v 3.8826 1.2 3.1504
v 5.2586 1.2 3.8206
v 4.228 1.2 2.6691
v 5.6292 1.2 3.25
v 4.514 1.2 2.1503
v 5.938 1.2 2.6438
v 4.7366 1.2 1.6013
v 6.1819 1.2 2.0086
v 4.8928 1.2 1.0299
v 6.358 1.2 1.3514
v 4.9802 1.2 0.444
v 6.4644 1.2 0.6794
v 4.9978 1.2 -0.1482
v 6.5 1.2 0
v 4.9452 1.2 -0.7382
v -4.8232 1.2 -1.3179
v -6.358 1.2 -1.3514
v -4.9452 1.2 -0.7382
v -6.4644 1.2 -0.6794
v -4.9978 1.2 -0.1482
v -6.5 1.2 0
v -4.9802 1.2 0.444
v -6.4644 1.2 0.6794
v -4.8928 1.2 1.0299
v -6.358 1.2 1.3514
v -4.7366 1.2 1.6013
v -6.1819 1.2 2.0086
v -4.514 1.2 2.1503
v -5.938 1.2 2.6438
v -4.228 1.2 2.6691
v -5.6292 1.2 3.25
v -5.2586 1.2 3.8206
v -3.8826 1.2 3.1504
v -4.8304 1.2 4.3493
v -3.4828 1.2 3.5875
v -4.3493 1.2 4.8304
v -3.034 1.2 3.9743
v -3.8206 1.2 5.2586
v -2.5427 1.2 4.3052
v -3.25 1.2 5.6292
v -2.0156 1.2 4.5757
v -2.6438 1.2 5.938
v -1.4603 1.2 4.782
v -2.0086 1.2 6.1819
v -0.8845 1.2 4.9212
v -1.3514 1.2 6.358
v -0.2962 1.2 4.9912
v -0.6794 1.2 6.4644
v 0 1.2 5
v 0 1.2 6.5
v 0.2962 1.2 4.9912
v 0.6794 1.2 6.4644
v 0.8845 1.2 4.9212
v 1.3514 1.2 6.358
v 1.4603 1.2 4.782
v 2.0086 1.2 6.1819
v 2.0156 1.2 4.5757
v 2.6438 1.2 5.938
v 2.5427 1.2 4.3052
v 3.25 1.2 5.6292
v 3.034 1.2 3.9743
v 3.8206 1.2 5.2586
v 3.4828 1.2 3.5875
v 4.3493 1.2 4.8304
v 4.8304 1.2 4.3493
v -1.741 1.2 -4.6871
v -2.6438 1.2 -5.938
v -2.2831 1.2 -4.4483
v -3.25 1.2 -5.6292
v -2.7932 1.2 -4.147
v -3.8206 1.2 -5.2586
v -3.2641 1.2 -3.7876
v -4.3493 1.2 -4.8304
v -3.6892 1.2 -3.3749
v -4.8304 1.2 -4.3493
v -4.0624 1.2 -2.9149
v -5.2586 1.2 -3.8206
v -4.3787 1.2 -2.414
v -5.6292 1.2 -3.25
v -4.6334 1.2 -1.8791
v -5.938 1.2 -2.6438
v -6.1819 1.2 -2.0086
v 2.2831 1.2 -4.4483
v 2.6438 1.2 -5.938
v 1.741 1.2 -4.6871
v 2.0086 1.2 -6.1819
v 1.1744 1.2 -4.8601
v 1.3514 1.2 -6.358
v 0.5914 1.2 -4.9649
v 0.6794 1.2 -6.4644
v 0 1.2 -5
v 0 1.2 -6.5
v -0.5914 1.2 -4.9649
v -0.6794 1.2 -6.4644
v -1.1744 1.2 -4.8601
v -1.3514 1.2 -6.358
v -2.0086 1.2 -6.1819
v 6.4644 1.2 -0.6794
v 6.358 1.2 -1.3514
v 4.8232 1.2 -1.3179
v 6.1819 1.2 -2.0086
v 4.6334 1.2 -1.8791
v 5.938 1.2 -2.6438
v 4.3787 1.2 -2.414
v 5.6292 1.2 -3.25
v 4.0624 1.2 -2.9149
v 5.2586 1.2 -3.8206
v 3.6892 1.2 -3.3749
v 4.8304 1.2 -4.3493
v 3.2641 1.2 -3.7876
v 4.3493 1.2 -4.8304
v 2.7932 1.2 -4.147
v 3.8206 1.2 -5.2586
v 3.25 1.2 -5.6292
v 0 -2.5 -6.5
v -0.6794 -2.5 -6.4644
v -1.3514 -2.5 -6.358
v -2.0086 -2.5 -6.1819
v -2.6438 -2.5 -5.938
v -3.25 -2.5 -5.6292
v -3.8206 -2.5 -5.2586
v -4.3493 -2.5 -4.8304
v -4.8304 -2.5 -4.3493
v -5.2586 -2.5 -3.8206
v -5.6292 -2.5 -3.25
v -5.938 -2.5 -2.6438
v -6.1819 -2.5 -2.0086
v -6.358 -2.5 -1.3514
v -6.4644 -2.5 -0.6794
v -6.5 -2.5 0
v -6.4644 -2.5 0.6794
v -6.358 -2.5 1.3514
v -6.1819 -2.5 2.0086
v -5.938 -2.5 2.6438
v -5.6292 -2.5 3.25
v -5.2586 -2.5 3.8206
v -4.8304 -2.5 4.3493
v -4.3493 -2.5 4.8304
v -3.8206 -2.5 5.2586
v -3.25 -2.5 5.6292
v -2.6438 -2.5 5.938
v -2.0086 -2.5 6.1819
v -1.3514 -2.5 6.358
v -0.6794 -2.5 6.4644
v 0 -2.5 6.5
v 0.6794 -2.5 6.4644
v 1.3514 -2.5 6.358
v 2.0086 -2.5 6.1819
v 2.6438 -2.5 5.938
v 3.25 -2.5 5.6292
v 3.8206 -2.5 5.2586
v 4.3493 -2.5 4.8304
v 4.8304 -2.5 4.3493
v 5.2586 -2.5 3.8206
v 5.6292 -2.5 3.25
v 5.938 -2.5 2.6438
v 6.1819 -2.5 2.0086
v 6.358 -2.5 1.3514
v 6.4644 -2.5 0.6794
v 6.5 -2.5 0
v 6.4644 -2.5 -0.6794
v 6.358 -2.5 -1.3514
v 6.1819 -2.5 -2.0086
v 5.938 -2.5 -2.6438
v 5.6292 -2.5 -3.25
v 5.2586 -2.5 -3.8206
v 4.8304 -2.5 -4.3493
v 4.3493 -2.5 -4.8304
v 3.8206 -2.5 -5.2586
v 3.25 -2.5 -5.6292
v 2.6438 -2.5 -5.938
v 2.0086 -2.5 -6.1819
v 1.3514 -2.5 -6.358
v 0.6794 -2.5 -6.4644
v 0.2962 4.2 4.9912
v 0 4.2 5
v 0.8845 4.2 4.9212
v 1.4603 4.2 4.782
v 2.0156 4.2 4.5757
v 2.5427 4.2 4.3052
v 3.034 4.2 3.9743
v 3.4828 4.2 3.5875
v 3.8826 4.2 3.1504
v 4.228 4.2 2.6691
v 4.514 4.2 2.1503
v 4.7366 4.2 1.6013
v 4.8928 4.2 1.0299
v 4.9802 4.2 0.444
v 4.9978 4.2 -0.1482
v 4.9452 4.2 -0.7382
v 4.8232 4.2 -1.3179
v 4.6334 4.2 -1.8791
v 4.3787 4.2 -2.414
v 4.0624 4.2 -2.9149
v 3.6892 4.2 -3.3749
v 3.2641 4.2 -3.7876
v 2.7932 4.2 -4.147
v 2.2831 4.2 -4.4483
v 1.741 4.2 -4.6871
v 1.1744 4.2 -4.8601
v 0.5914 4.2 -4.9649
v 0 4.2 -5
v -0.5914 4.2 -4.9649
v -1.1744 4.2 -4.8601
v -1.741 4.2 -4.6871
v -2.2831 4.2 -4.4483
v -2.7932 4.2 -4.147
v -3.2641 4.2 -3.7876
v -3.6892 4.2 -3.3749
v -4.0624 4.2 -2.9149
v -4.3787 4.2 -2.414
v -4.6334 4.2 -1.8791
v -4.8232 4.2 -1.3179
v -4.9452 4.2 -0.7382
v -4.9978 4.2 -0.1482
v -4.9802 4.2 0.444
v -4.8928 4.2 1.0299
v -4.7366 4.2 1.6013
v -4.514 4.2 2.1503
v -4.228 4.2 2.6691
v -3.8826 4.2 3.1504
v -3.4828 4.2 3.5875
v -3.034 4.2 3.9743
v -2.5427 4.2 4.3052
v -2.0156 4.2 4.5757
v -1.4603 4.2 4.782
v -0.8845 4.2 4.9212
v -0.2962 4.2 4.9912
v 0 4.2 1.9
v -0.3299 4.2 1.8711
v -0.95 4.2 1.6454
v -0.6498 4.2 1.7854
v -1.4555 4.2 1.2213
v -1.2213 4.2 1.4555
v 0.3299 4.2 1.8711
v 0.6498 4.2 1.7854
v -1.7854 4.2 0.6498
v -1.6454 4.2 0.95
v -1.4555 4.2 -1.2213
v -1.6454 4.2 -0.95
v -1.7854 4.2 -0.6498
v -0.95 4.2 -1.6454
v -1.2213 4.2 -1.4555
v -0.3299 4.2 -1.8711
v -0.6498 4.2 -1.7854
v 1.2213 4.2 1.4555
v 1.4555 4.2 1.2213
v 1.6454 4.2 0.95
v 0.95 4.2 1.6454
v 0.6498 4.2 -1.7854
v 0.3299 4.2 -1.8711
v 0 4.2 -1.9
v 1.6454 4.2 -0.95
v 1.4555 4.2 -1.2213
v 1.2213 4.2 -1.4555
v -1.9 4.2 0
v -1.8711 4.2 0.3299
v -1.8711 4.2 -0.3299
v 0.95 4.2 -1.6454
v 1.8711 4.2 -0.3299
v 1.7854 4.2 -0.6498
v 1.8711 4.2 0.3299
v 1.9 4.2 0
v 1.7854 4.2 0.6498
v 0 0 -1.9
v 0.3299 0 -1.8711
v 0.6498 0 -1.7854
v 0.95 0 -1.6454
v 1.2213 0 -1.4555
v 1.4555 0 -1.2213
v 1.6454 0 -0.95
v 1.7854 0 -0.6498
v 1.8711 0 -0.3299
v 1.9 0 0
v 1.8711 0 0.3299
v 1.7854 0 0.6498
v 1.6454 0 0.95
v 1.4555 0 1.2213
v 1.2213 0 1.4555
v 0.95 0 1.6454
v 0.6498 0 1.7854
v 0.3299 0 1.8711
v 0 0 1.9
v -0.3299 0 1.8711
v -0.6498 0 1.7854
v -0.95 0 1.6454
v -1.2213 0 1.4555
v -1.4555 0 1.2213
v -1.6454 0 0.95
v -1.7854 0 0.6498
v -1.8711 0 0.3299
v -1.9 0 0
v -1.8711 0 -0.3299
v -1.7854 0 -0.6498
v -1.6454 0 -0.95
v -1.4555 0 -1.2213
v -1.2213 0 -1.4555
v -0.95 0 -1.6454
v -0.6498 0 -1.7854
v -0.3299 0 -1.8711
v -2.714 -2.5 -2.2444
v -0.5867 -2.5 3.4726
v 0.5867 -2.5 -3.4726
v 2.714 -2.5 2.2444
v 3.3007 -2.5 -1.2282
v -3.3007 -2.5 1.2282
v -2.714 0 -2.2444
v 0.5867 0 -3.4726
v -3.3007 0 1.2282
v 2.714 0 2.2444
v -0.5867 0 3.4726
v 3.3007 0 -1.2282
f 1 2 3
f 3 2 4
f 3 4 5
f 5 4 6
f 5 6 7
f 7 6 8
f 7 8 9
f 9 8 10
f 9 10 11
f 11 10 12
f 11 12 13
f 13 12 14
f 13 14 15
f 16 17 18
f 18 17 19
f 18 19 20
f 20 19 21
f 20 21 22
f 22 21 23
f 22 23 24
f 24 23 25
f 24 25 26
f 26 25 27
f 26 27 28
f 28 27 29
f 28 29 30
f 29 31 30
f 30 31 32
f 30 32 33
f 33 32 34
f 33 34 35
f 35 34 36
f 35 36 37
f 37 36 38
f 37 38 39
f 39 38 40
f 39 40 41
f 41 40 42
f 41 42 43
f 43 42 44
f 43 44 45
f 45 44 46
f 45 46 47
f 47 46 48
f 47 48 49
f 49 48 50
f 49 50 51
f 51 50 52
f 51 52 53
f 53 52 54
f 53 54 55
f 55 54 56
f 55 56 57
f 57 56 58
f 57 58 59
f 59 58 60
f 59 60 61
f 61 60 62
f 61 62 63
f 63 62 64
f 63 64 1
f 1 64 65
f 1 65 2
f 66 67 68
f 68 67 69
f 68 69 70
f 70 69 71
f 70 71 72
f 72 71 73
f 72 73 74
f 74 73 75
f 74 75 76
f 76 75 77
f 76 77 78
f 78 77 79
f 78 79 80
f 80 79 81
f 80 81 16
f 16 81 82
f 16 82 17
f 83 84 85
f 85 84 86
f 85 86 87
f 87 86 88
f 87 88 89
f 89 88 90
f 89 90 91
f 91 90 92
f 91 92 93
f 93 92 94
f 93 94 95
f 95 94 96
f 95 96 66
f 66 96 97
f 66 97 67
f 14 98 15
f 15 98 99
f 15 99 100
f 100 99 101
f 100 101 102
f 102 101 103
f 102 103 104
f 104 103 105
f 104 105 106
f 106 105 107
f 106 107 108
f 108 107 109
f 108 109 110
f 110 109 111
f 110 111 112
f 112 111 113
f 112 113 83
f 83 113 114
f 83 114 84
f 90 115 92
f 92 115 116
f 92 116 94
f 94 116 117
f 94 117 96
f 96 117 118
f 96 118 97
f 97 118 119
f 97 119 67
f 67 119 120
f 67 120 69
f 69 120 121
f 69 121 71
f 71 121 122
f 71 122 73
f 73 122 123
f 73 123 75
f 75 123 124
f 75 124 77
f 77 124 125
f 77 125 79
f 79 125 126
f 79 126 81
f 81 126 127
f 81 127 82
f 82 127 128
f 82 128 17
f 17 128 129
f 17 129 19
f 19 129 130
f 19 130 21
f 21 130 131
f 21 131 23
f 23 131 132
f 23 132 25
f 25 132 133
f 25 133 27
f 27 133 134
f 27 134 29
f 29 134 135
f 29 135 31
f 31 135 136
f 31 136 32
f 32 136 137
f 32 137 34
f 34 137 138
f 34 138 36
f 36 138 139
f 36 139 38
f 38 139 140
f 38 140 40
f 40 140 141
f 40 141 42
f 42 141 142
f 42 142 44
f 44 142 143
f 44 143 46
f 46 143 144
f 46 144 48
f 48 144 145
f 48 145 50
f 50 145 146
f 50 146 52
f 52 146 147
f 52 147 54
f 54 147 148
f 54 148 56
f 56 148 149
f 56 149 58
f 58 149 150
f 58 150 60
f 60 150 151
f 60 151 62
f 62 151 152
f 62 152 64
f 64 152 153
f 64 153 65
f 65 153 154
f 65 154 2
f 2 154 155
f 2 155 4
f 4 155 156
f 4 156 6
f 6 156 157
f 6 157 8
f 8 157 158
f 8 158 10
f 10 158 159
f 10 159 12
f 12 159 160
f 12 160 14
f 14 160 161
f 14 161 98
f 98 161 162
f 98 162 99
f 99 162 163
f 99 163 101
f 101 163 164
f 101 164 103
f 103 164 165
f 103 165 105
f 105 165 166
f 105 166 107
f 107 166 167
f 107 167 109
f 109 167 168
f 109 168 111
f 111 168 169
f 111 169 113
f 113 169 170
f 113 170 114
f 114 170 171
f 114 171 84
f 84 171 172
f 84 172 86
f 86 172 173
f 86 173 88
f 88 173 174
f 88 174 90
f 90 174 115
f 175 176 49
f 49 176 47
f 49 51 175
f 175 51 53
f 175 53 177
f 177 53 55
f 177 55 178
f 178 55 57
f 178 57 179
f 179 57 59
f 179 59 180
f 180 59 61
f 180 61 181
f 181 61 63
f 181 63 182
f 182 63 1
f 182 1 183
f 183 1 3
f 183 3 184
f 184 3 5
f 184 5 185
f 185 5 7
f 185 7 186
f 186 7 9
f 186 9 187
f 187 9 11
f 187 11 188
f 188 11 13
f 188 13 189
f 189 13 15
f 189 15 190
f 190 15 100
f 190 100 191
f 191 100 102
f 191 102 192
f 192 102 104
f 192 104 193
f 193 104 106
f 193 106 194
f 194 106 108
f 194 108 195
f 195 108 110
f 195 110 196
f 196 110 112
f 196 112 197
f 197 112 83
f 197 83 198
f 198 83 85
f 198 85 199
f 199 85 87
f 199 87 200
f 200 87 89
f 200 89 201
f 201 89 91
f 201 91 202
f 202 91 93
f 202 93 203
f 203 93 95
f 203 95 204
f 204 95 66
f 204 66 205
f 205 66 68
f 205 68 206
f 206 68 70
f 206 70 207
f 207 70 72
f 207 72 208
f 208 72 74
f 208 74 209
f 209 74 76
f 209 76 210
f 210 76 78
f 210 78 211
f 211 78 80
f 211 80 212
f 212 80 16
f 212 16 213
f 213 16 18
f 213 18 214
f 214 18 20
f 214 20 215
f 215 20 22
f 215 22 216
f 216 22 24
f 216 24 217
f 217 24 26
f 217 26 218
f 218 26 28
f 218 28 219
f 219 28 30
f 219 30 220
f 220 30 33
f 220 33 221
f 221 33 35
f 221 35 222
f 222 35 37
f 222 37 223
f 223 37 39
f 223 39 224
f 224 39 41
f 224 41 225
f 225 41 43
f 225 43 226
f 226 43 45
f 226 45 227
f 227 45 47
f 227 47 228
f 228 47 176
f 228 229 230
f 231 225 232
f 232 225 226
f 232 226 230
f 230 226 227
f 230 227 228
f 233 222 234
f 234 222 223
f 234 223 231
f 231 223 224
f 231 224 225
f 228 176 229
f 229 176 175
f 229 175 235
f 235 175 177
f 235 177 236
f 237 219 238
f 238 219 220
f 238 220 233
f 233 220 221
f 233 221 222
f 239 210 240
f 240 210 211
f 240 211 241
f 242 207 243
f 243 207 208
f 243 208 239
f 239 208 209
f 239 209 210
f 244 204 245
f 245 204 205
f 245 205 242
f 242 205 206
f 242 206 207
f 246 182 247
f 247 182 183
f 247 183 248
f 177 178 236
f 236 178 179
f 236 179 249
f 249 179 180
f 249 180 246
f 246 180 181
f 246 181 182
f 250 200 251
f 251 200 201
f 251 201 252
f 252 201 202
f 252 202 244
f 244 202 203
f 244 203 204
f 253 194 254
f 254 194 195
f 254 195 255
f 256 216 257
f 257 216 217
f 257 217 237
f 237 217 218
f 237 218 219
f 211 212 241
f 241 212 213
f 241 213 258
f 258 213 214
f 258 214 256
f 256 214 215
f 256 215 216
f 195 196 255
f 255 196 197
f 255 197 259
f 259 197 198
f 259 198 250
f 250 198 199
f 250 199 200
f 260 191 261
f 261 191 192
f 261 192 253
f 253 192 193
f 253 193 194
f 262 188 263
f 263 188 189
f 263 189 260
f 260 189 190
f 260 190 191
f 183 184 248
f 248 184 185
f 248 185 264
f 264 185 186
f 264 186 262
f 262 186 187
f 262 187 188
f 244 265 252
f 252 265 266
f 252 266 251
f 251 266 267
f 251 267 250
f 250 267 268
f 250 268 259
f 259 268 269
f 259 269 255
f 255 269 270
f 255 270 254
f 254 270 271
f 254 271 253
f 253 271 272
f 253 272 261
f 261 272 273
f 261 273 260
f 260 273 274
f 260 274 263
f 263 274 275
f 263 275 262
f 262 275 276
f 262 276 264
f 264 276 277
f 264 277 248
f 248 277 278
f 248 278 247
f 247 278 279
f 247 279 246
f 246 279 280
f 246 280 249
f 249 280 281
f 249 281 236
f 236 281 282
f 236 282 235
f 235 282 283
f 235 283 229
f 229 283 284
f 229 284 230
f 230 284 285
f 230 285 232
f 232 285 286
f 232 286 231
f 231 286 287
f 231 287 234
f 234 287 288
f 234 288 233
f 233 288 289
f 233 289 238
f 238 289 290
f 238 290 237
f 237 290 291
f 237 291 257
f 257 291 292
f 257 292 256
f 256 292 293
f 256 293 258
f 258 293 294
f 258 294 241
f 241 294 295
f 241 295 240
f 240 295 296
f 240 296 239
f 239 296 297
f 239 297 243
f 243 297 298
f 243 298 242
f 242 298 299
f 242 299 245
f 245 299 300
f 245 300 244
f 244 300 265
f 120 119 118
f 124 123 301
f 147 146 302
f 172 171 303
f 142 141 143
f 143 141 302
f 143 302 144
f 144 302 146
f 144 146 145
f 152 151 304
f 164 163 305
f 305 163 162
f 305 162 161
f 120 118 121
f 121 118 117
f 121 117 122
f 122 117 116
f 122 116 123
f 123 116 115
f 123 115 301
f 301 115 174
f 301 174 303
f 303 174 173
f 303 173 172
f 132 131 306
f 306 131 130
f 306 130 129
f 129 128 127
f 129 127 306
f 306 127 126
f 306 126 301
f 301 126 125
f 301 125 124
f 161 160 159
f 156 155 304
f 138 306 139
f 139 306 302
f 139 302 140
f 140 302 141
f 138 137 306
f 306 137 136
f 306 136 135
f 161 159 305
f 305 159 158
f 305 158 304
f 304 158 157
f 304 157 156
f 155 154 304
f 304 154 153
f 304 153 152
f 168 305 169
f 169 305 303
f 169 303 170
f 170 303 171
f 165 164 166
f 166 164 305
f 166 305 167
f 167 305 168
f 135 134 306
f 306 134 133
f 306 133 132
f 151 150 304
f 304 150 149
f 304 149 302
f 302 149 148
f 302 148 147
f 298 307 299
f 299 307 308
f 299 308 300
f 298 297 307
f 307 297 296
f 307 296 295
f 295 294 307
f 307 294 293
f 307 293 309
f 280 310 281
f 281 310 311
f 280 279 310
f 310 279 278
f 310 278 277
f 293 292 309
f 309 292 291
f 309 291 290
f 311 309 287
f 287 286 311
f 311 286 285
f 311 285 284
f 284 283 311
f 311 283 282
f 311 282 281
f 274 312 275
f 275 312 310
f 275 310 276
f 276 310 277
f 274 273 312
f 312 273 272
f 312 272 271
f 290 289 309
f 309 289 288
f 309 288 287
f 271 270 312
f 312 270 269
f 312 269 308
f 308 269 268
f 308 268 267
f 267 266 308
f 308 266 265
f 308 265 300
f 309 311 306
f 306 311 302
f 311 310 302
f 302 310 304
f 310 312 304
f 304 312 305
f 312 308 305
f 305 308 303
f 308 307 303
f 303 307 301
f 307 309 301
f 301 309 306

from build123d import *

# Parameters (mm, degrees)
CROQUIS1_R              = 6.5
SALIENTE_EXTRUIR1_DEPTH = 1.2
CROQUIS2_R              = 5
SALIENTE_EXTRUIR2_DEPTH = 3
CROQUIS3_R              = 1.8
CORTAR_EXTRUIR1_DEPTH   = 3
CORTAR_EXTRUIR2_REACH   = 6.2
CROQUIS4_R              = 1.9
CROQUIS5_R              = 6.5
SALIENTE_EXTRUIR3_DEPTH = 2.5
CORTAR_EXTRUIR3_DEPTH   = 2.5


with BuildPart() as part:
    # Croquis1 → Saliente-Extruir1 (new body)
    with BuildSketch(Plane(origin=(0, 0, 0), x_dir=(1, 0, 0), z_dir=(0, 1, 0))):
        Circle(CROQUIS1_R)
    extrude(amount=SALIENTE_EXTRUIR1_DEPTH)

    # Croquis2 → Saliente-Extruir2 (add)
    with BuildSketch(Plane(origin=(0, 1.2, 0), x_dir=(1, 0, 0), z_dir=(0, 1, 0))):
        Circle(CROQUIS2_R)
    extrude(amount=SALIENTE_EXTRUIR2_DEPTH)

    # Croquis3 → Cortar-Extruir1 (cut)
    with BuildSketch(Plane(origin=(0, 4.2, 0), x_dir=(1, 0, 0), z_dir=(0, 1, 0))):
        Circle(CROQUIS3_R)
    extrude(amount=-CORTAR_EXTRUIR1_DEPTH, mode=Mode.SUBTRACT)

    # Croquis4 → Cortar-Extruir2 (cut, up to next)
    with BuildSketch(Plane.XZ, mode=Mode.PRIVATE) as cortar_extruir2_sk1:
        Circle(CROQUIS4_R)
    cortar_extruir2_tool1 = extrude(cortar_extruir2_sk1.sketch, amount=-CORTAR_EXTRUIR2_REACH, mode=Mode.PRIVATE) & part.part
    add(cortar_extruir2_tool1.solids().sort_by_distance((0, 0, 0))[0], mode=Mode.SUBTRACT)

    # Croquis5 → Saliente-Extruir3 (add)
    with BuildSketch(Plane.XZ):
        Circle(CROQUIS5_R)
    extrude(amount=SALIENTE_EXTRUIR3_DEPTH)

    # Croquis6 → Cortar-Extruir3 (cut)
    with BuildSketch(Plane.XZ.offset(2.5)):
        Polygon((-3.300733133, 1.228207686), (-2.714025623, -2.244414901), (0.586707509, -3.472622587), (3.300733133, -1.228207686), (2.714025623, 2.244414901), (-0.586707509, 3.472622587), align=None)
    extrude(amount=-CORTAR_EXTRUIR3_DEPTH, mode=Mode.SUBTRACT)


solid = part.part
